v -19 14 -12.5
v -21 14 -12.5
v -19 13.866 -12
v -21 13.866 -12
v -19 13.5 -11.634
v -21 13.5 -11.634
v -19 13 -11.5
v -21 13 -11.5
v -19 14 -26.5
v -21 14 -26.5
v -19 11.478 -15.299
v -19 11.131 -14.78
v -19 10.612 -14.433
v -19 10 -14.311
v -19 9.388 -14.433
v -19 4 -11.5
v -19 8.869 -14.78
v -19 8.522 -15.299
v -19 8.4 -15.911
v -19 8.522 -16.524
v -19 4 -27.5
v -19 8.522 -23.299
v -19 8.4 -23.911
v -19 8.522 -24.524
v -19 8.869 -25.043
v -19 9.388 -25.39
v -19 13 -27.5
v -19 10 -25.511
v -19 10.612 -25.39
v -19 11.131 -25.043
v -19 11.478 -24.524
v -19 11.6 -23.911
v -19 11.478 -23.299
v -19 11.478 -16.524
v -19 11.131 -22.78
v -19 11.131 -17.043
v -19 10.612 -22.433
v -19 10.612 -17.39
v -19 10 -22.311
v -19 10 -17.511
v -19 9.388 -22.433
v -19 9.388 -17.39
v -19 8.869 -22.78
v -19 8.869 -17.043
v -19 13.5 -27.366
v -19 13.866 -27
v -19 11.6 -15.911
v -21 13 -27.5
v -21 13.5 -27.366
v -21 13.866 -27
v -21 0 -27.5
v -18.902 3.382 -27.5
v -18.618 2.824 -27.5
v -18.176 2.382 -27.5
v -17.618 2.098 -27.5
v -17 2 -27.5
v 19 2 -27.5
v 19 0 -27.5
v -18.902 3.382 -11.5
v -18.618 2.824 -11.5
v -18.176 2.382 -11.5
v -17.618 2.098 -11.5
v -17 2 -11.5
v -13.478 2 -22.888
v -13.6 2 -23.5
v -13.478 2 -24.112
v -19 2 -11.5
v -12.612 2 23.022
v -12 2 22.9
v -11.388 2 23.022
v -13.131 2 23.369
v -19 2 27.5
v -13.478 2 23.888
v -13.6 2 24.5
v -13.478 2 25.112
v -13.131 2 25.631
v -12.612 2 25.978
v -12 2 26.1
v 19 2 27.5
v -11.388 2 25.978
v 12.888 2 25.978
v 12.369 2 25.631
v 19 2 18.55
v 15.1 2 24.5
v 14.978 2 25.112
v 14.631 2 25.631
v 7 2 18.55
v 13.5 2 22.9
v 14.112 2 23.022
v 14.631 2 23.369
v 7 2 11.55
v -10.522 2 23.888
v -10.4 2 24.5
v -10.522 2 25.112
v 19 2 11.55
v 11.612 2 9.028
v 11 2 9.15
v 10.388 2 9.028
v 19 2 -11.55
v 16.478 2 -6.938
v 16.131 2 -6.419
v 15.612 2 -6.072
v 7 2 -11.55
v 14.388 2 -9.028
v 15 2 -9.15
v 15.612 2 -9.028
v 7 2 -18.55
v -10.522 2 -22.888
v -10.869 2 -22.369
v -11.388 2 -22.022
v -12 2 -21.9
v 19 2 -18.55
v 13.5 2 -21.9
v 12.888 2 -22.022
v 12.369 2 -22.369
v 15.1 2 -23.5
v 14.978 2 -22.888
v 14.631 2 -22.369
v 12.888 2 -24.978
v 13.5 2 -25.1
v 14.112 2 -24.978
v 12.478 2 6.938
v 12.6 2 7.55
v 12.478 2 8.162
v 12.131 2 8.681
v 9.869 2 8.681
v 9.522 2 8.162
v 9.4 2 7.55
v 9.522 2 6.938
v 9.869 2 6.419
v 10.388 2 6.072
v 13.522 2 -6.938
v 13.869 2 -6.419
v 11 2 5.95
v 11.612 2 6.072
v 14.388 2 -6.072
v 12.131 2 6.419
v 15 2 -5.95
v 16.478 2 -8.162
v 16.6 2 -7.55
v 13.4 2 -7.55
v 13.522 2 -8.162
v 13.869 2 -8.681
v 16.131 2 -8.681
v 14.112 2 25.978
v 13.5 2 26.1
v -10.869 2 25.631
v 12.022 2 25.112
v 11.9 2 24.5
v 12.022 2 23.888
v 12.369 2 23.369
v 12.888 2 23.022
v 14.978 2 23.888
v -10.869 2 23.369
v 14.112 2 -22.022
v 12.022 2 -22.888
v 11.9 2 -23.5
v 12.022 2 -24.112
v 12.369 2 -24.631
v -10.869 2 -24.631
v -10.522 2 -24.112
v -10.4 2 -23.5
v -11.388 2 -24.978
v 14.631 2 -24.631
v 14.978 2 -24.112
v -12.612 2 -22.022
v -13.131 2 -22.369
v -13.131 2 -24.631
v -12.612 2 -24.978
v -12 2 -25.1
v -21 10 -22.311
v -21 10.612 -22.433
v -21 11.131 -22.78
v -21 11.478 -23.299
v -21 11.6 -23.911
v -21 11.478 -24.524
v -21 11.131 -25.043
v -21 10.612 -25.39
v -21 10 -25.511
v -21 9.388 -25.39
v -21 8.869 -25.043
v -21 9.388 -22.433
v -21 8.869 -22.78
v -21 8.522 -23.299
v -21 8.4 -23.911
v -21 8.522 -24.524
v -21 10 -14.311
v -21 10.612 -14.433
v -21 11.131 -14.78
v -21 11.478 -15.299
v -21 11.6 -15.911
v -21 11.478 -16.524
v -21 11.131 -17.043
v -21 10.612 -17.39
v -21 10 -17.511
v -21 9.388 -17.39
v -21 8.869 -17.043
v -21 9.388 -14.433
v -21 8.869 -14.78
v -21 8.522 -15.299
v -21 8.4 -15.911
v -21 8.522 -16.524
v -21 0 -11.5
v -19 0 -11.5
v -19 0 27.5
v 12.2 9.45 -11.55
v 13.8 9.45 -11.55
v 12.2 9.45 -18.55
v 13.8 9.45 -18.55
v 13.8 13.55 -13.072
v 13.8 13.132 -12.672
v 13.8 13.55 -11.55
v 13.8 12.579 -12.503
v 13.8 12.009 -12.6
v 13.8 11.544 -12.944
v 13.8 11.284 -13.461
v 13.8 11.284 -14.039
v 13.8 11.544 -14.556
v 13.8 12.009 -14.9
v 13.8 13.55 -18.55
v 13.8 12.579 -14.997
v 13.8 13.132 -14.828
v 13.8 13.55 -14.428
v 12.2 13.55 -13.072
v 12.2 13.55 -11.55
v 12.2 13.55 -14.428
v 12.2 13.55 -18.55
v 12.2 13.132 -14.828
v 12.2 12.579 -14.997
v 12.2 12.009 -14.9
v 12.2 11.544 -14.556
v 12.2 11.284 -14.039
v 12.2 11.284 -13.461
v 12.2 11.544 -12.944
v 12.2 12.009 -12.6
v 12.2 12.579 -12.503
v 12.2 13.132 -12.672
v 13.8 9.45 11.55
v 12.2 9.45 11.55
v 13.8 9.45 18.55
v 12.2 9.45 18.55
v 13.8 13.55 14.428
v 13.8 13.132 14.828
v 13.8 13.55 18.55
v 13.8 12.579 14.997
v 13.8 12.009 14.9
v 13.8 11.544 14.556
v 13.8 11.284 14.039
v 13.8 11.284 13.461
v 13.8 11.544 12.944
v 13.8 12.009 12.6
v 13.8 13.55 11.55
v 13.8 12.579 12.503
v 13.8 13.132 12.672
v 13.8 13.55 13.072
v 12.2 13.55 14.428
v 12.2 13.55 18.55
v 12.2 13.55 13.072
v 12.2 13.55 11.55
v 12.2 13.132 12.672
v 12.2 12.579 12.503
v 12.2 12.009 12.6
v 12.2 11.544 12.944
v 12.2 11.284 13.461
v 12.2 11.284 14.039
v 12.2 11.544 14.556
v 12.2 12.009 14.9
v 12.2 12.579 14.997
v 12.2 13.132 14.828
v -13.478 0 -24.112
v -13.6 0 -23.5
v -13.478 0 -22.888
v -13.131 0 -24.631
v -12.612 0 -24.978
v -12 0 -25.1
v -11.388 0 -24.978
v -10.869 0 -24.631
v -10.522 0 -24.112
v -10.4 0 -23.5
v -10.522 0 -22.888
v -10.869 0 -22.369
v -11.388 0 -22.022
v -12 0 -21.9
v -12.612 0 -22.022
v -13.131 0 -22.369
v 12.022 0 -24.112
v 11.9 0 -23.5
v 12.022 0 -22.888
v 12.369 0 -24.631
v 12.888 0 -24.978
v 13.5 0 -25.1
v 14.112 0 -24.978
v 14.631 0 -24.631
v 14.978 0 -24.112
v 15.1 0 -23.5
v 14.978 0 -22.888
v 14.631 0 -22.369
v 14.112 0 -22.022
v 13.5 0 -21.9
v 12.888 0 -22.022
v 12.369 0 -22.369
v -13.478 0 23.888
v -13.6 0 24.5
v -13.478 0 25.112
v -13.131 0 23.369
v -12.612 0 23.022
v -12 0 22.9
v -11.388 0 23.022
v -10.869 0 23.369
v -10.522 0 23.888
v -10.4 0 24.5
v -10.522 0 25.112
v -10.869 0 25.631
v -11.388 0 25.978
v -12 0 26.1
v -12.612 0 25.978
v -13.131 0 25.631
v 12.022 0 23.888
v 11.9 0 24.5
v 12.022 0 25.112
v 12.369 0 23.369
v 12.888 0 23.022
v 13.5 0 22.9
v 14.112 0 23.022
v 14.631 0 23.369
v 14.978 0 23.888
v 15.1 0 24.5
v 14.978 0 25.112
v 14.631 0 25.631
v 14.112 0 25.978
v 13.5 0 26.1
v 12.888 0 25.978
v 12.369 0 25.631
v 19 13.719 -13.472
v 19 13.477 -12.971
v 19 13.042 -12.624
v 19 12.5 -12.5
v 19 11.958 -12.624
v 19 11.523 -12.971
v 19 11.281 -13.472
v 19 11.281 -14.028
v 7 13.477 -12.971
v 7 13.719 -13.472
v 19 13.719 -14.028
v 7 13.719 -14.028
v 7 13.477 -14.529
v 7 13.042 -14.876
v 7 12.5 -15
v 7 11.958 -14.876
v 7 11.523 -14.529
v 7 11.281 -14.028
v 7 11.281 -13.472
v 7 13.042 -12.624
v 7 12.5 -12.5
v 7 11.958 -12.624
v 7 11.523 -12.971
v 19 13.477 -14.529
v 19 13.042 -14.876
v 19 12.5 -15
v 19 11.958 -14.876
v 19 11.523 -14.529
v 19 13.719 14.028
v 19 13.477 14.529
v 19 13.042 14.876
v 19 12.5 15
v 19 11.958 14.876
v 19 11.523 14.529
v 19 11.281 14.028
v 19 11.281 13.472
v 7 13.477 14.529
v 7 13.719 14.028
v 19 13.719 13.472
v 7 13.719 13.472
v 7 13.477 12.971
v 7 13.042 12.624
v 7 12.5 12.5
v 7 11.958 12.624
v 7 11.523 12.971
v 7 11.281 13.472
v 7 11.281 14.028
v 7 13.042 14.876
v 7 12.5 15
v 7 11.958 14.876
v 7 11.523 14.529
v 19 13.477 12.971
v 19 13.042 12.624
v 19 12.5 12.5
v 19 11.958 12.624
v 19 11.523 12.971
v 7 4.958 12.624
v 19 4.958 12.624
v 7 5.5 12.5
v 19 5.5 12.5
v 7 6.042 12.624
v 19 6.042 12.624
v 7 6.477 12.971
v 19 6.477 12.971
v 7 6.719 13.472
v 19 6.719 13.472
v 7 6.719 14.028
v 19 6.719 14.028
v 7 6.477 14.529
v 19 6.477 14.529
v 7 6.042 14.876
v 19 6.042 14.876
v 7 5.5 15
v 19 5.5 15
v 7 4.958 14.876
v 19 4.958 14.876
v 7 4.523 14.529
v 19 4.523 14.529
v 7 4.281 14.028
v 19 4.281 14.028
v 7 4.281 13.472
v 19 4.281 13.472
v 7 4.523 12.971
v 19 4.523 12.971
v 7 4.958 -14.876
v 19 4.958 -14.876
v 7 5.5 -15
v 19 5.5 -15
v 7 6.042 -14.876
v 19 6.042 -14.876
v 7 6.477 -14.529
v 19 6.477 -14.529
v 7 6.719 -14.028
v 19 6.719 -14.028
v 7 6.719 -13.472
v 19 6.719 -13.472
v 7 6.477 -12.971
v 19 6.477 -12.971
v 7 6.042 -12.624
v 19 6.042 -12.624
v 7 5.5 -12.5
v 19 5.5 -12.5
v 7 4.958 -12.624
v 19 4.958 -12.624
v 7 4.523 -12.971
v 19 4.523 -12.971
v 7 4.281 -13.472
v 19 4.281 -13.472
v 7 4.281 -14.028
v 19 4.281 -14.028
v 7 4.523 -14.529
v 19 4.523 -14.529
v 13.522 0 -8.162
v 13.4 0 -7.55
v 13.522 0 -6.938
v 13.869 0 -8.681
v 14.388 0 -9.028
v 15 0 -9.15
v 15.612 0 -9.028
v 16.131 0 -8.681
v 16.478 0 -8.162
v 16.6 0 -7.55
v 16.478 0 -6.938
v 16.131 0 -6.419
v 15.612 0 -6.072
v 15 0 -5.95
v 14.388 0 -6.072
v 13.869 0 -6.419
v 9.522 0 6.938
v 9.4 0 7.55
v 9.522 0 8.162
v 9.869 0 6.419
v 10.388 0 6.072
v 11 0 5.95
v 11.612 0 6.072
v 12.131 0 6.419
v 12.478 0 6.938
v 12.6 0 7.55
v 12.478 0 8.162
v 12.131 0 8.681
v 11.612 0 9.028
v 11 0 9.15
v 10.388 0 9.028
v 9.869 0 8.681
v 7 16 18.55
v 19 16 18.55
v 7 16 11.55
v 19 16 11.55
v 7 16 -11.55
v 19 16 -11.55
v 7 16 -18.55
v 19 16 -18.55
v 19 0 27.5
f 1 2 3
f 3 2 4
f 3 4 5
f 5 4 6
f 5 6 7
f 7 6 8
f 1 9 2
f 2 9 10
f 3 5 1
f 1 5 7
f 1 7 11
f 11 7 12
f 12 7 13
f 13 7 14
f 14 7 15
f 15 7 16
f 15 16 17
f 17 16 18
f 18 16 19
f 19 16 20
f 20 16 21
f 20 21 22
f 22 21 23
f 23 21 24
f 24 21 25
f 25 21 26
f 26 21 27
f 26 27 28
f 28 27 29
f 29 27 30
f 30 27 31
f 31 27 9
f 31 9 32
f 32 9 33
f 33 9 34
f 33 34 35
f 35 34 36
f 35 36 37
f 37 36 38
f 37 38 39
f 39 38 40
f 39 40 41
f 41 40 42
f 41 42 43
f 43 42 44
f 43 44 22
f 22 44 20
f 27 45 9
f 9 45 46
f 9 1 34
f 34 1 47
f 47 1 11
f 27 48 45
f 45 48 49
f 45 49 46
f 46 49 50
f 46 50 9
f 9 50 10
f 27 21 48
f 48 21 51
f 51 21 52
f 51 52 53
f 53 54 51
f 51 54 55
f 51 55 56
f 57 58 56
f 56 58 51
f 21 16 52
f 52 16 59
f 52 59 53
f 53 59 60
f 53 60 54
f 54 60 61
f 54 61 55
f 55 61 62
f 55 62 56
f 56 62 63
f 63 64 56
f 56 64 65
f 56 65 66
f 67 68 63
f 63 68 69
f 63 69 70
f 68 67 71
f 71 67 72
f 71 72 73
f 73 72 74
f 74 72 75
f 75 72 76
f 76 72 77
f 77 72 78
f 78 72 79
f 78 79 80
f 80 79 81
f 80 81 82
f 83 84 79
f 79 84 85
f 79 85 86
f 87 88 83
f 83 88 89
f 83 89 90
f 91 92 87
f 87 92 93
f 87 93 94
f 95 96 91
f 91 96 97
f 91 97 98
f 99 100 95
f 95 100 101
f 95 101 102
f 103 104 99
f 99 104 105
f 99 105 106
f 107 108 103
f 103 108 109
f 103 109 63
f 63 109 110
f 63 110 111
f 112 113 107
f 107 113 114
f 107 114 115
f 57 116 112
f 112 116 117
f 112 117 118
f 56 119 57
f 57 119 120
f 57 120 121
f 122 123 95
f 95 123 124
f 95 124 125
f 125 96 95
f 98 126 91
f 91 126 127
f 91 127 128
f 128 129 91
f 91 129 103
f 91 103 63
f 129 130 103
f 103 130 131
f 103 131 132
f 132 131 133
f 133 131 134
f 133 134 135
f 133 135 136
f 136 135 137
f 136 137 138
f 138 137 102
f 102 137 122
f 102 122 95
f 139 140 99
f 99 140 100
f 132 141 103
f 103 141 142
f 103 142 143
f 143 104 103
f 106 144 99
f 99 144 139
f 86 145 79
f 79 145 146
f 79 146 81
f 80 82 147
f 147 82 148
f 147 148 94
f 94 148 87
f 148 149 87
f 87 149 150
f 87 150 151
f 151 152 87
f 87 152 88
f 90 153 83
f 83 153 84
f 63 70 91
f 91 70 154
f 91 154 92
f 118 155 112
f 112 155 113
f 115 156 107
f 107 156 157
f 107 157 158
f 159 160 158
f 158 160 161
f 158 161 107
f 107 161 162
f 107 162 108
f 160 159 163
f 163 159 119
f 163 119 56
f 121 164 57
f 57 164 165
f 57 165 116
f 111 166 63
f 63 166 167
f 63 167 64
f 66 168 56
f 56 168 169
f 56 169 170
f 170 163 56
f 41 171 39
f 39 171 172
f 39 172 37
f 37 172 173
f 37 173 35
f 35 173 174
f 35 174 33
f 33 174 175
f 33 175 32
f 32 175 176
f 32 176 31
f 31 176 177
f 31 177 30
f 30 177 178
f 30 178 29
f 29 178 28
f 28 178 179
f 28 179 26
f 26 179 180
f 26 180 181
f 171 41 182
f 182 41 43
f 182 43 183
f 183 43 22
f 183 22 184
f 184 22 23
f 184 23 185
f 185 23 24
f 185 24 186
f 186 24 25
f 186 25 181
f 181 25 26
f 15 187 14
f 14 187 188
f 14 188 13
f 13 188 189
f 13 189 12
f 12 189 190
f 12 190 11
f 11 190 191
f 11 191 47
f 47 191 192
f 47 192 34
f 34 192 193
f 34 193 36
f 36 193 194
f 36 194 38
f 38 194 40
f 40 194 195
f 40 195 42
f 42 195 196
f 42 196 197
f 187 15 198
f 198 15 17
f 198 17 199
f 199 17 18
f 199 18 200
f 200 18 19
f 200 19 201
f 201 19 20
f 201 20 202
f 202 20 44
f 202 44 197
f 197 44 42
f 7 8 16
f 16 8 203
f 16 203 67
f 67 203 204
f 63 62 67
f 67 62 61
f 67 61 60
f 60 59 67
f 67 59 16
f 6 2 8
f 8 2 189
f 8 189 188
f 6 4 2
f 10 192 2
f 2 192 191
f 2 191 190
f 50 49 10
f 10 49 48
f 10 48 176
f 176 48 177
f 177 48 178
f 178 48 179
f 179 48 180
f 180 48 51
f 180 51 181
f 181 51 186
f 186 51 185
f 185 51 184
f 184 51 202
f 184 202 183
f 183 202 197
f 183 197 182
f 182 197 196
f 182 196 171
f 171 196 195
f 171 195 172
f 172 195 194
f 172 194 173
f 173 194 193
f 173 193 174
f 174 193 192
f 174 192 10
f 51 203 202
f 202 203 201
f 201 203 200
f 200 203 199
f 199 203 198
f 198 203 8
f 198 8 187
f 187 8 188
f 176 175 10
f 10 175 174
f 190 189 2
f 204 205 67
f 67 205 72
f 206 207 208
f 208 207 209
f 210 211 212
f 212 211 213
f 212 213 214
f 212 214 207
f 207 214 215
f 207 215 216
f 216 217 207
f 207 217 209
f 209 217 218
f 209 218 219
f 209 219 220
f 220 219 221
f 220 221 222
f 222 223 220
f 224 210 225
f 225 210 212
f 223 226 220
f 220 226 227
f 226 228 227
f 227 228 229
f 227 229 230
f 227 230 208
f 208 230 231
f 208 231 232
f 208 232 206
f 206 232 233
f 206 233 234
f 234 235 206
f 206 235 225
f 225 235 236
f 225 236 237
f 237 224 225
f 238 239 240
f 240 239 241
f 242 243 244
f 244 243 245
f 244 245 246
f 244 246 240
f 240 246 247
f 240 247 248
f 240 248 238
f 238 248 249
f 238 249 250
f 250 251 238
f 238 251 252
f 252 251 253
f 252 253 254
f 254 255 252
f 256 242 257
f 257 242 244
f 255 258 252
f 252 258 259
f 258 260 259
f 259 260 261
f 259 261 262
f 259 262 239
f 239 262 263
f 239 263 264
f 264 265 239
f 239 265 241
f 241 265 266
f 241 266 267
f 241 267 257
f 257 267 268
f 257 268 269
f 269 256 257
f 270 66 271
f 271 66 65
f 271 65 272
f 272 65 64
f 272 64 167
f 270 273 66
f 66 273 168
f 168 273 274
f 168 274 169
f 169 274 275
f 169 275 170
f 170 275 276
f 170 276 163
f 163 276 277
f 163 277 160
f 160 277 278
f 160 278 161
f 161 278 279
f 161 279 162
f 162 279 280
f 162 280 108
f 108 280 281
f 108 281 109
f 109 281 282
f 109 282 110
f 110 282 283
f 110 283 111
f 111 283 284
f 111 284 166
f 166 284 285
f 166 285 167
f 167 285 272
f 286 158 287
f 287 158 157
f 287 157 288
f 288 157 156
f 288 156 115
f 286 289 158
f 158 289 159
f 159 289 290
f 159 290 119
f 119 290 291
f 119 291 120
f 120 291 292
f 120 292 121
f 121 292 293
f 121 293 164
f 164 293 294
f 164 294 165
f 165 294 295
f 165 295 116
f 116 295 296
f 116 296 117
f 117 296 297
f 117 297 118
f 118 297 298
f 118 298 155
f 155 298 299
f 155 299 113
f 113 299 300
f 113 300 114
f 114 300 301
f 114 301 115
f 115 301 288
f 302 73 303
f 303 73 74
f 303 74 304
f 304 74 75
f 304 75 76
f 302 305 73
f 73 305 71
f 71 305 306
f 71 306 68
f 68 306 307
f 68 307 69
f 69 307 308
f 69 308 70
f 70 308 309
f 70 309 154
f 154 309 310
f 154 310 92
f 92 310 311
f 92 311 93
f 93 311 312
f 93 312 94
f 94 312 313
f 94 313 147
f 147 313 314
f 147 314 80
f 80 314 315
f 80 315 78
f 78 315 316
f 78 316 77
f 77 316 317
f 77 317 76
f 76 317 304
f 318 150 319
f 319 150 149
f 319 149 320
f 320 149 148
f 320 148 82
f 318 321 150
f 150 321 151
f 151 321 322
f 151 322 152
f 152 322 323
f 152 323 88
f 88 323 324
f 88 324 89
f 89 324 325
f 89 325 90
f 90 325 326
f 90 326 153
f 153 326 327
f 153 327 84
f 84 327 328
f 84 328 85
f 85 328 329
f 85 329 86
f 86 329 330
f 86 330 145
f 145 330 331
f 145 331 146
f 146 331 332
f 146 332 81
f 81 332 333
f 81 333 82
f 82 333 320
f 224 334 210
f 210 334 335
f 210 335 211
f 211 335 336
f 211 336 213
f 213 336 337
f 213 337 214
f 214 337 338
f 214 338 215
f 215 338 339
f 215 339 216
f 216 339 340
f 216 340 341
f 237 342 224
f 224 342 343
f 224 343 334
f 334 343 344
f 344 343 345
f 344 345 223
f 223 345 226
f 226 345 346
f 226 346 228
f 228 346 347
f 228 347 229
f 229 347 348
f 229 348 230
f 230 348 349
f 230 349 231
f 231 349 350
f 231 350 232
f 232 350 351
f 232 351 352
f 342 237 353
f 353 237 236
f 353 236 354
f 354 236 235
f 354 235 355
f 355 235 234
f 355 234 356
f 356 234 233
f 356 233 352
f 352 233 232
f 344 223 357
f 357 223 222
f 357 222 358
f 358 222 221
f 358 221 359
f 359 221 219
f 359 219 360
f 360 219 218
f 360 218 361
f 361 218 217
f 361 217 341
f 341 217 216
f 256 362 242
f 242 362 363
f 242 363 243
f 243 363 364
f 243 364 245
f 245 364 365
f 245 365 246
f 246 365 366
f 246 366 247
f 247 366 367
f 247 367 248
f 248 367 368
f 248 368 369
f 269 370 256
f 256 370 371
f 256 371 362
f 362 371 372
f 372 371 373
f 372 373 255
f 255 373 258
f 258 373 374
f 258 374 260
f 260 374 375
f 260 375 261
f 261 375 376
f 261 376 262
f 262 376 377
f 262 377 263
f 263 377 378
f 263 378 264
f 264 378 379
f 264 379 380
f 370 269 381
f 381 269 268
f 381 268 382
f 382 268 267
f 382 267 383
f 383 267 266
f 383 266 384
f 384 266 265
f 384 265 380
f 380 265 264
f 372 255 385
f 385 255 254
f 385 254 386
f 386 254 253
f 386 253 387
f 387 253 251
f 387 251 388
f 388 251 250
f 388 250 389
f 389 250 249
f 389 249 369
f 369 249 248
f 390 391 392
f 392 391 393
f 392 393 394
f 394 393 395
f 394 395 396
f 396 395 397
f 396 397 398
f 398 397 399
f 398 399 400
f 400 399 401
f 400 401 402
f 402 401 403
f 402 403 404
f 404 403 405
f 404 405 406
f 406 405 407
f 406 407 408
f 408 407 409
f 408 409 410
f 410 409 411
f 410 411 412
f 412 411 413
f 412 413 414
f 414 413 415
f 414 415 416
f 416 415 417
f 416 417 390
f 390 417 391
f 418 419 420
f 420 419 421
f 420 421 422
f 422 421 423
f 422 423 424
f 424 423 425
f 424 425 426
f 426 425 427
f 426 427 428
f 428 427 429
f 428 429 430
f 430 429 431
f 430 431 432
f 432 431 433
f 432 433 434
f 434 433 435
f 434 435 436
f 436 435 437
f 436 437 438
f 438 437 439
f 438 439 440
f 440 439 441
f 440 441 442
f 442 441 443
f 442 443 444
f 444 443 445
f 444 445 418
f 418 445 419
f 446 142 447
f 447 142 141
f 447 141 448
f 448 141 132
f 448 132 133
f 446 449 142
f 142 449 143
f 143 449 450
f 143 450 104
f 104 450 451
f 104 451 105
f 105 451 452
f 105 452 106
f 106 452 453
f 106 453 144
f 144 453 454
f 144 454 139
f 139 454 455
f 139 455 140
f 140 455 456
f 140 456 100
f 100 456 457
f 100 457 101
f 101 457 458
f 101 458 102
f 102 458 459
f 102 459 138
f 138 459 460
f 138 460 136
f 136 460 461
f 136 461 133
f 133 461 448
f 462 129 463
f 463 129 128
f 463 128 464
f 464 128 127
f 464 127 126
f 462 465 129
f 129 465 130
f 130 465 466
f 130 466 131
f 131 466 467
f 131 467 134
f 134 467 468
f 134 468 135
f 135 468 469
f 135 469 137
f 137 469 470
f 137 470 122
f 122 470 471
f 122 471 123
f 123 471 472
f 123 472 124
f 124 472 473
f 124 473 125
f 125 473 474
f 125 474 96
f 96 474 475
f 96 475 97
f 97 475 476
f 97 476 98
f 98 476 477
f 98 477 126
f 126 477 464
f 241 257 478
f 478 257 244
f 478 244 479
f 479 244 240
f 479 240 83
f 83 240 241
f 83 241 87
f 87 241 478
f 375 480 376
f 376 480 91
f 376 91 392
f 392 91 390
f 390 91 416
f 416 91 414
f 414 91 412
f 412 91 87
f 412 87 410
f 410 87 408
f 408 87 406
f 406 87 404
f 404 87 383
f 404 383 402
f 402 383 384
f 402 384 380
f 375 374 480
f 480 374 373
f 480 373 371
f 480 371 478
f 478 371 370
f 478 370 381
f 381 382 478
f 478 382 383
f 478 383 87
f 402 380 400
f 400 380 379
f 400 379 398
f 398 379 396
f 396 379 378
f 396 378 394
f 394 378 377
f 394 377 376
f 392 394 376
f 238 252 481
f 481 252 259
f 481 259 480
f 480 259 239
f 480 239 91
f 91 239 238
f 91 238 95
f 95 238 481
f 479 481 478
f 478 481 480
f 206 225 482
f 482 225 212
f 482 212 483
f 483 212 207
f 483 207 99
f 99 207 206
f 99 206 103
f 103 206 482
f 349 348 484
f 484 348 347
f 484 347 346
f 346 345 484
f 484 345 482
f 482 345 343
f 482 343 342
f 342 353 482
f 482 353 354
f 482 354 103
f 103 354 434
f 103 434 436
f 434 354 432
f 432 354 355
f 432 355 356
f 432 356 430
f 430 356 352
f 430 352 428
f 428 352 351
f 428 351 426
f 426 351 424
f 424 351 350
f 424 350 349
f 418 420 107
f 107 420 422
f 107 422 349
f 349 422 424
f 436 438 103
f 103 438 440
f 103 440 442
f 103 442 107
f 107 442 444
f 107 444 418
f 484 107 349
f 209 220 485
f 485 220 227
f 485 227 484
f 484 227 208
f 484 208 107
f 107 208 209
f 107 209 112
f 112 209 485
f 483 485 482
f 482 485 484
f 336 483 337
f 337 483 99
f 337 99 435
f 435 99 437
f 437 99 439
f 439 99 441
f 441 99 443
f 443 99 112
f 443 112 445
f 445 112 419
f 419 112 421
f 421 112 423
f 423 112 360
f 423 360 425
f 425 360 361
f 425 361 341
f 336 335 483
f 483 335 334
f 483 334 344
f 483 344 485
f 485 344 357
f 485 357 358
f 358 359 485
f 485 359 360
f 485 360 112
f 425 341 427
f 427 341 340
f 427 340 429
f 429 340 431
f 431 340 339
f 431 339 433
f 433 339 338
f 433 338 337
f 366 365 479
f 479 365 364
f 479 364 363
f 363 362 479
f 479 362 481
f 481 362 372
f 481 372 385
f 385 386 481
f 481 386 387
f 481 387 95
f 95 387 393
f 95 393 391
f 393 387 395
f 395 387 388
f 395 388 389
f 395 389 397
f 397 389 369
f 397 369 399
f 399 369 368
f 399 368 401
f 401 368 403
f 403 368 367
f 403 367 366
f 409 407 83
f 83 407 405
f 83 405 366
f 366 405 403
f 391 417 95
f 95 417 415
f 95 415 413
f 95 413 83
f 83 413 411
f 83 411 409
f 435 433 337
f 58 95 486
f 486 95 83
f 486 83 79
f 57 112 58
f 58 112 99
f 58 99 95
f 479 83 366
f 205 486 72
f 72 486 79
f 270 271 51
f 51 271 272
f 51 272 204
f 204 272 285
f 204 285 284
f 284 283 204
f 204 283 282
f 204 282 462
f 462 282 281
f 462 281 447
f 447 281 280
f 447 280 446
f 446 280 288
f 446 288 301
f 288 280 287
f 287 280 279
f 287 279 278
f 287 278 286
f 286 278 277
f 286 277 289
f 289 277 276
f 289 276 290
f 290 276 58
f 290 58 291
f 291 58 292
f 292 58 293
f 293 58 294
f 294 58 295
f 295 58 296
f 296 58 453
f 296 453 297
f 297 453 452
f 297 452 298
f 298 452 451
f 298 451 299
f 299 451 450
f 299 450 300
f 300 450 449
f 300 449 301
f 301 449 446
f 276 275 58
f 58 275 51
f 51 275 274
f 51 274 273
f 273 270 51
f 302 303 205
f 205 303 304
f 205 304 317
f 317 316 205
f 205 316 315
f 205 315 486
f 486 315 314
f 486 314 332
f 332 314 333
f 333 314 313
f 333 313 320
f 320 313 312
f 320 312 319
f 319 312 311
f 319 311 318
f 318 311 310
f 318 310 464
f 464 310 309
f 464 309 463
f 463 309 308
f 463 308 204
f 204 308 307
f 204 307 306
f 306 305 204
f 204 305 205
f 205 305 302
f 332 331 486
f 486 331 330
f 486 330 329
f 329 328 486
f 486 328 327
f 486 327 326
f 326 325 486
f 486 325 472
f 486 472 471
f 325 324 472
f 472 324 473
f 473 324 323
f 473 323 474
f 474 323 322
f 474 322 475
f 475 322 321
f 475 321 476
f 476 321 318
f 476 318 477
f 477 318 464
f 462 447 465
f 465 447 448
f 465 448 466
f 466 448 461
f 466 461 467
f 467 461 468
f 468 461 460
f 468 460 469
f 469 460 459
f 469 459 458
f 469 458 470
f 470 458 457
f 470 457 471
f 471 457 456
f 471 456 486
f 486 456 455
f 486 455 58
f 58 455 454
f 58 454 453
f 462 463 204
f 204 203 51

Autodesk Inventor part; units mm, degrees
ref_plane "YZ Plane" through (0, 0, 0) normal (1, 0, 0) x (0, 1, 0)
ref_plane "XZ Plane" through (0, 0, 0) normal (0, 1, 0) x (-1, 0, 0)
ref_plane "XY Plane" through (0, 0, 0) normal (0, 0, 1) x (1, 0, 0)
sketch "Эскиз1" plane through (0, 0, 0) normal (0, 1, 0) x (-1, 0, 0)
  line L0 (-19, 27.5) -> (19, 27.5)
  line L1 (19, 27.5) -> (19, -27.5)
  line L2 (19, -27.5) -> (-19, -27.5)
  line L3 (-19, -27.5) -> (-19, 27.5)
  line L4 (-19, 27.5) -> (19, -27.5) construction
  line L5 (19, 27.5) -> (-19, -27.5) construction
  point P0 (0, 0)
  dimension "d10" = 55
  dimension "d11" = 38
extrude "Выдавливание1" add sketch "Эскиз1" along normal blind 2
sketch "Эскиз2" plane through (0, 2, 0) normal (0, 1, 0) x (1, 0, 0)
  line L0 (7, -18.55) -> (19, -18.55)
  line L1 (19, -18.55) -> (19, -11.55)
  line L2 (19, -11.55) -> (7, -11.55)
  line L3 (7, -11.55) -> (7, -18.55)
  line L4 (7, -18.55) -> (19, -11.55) construction
  line L5 (19, -18.55) -> (7, -11.55) construction
  line L6 (7, 11.55) -> (19, 11.55)
  line L7 (19, 11.55) -> (19, 18.55)
  line L8 (19, 18.55) -> (7, 18.55)
  line L9 (7, 18.55) -> (7, 11.55)
  line L10 (7, 11.55) -> (19, 18.55) construction
  line L11 (19, 11.55) -> (7, 18.55) construction
  line L12 (19, -27.5) -> (19, 27.5) projected
  line L13 (-19, 27.5) -> (-19, -27.5) projected
  line L14 (-19, 0) -> (19, 0)
  point P0 (0, 0)
  point P1 (13, -15.05)
  point P2 (13, 15.05)
  point P3 (0, 0)
  dimension "d2" = 12
  dimension "d3" = 7
  dimension "d4" = 12
  dimension "d5" = 7
  dimension "d12" = 0
  dimension "d15" = 0
  dimension "d25" = 11.55
  dimension "d26" = 11.55
extrude "Выдавливание2" add sketch "Эскиз2" along normal blind 14
sketch "Эскиз4" plane through (0, 2, 0) normal (0, 1, 0) x (1, 0, 0)
  circle A0 centre (15, 7.55) radius 1.6
  circle A1 centre (11, -7.55) radius 1.6
  line L0 (7, -11.55) -> (7, -18.55) projected
  line L1 (7, 11.55) -> (19, 11.55) projected
  line L2 (19, -11.55) -> (7, -11.55) projected
  point P0 (0, 0)
  dimension "d17" = 3.2
  dimension "d18" = 3.2
  dimension "d20" = 4
  dimension "d21" = 4
  dimension "d22" = 4
extrude "Выдавливание3" cut sketch "Эскиз4" against normal blind 14
sketch "Эскиз5" plane through (19, 2, 18.55) normal (1, 0, 0) x (0, 0, 1)
  circle A0 centre (-32.3, -3.5) radius 1.25
  circle A1 centre (-32.3, -10.5) radius 1.25
  circle A2 centre (-4.8, -10.5) radius 1.25
  circle A3 centre (-4.8, -3.5) radius 1.25
  line L0 (-4.8, -10.5) -> (-32.3, -10.5) construction
  line L1 (-32.3, -10.5) -> (-32.3, -3.5) construction
  line L2 (-32.3, -3.5) -> (-4.8, -3.5) construction
  line L3 (-4.8, -3.5) -> (-4.8, -10.5) construction
  line L4 (0, 0) -> (0, -14) construction
  line L5 (-37.1, 0) -> (-37.1, -14) construction
  line L6 (0, 0) -> (-37.1, 0) construction
  line L7 (-37.1, 0) -> (-37.1, -14) construction
  line L8 (-37.1, -14) -> (0, -14) construction
  line L9 (0, -14) -> (0, 0) construction
  line L10 (-18.55, -14) -> (-18.55, 0) construction
  line L11 (-46.05, 0) -> (8.95, 0) construction
  line L12 (-18.55, -3.5) -> (-18.55, -10.5) construction
  point P0 (-18.55, -7)
  dimension "d51" = 27.5
  dimension "d52" = 7
  dimension "d55" = 2.5
  dimension "d56" = 2.5
extrude "Выдавливание4" cut sketch "Эскиз5" against normal blind 14
sketch "Эскиз6" plane through (0, 2, 0) normal (0, 1, 0) x (1, 0, 0)
  circle A0 centre (-12, -24.5) radius 1.6
  circle A1 centre (-12, 23.5) radius 1.6
  circle A2 centre (13.5, -24.5) radius 1.6
  circle A3 centre (13.5, 23.5) radius 1.6
  point P0 (0, 0)
extrude "Выдавливание5" cut sketch "Эскиз6" against normal blind 10
sketch "Эскиз7" plane through (7, 2, 18.55) normal (0, 0, 1) x (1, 0, 0)
  line L0 (12, 14) -> (0, 14) projected
  line L1 (6, 14) -> (6, -2) construction
  line L2 (12, -2) -> (-26, -2) projected
  line L3 (0, 0) -> (0, 14) projected
  line L4 (0, 7) -> (12, 7) construction
  line L5 (12, 0) -> (12, 14) projected
  line L6 (12, 4.75) -> (12, 2.25) projected
  line L7 (0, 9.5) -> (12, 9.5)
  line L8 (6.8, 7.45) -> (5.2, 7.45)
  line L9 (5.2, 7.45) -> (5.2, 11.55)
  line L10 (5.2, 11.55) -> (6.8, 11.55)
  line L11 (6.8, 11.55) -> (6.8, 7.45)
  line L12 (6.8, 7.45) -> (5.2, 11.55) construction
  line L13 (5.2, 7.45) -> (6.8, 11.55) construction
  point P0 (-7, -2)
  point P1 (0, 8.25)
  point P2 (0, 10.75)
  point P3 (6, 9.5)
  dimension "d31" = 4.5
  dimension "d32" = 1.6
  dimension "d33" = 4.1
extrude "Выдавливание6" cut sketch "Эскиз7" against normal blind 12 contours L11 L8 L9 L7 | L7 L9 L10 L11
mirror "Зеркальное отражение1" about plane through (0, 0, 0) normal (0, 0, 1) of "Выдавливание6"
sketch "Эскиз8" plane through (-19, 0, -27.5) normal (-1, 0, 0) x (0, 0, 1)
  line L0 (0, 0) -> (16, 0)
  line L1 (16, 0) -> (16, 14)
  line L2 (16, 14) -> (0, 14)
  line L3 (0, 14) -> (0, 0)
  point P0 (27.5, 0)
  dimension "d38" = 16
  dimension "d39" = 14
extrude "Выдавливание7" add sketch "Эскиз8" along normal blind 2
sketch "Эскиз9" plane through (-21, 0, -27.5) normal (-1, 0, 0) x (0, 0, 1)
  line L0 (0, 14) -> (0, 0) construction
  line L1 (0, 10) -> (16, 10) construction
  line L2 (16, 0) -> (16, 14) construction
  line L3 (16, 14) -> (0, 14) construction
  circle A0 centre (3.5886, 10) radius 1.6
  circle A1 centre (11.5886, 10) radius 1.6
  line L4 (3.5886, 10) -> (11.5886, 10)
  line L5 (8, 14) -> (8, 2)
  point P0 (27.5, 0)
  point P1 (0, 12)
  point P2 (16, 12)
  point P3 (14, 14)
  point P4 (2, 14)
  dimension "d43" = 4
  dimension "d44" = 3.2
  dimension "d45" = 3.2
  dimension "d46" = 8
extrude "Выдавливание8" cut sketch "Эскиз9" against normal blind 2
fillet "Сопряжение2" radius 2 1 edges at (-19, 2, -19.5)
fillet "Сопряжение3" radius 1 2 edges at (-20, 14, -27.5) (-20, 14, -11.5)
properties part number "креп_сервы"
